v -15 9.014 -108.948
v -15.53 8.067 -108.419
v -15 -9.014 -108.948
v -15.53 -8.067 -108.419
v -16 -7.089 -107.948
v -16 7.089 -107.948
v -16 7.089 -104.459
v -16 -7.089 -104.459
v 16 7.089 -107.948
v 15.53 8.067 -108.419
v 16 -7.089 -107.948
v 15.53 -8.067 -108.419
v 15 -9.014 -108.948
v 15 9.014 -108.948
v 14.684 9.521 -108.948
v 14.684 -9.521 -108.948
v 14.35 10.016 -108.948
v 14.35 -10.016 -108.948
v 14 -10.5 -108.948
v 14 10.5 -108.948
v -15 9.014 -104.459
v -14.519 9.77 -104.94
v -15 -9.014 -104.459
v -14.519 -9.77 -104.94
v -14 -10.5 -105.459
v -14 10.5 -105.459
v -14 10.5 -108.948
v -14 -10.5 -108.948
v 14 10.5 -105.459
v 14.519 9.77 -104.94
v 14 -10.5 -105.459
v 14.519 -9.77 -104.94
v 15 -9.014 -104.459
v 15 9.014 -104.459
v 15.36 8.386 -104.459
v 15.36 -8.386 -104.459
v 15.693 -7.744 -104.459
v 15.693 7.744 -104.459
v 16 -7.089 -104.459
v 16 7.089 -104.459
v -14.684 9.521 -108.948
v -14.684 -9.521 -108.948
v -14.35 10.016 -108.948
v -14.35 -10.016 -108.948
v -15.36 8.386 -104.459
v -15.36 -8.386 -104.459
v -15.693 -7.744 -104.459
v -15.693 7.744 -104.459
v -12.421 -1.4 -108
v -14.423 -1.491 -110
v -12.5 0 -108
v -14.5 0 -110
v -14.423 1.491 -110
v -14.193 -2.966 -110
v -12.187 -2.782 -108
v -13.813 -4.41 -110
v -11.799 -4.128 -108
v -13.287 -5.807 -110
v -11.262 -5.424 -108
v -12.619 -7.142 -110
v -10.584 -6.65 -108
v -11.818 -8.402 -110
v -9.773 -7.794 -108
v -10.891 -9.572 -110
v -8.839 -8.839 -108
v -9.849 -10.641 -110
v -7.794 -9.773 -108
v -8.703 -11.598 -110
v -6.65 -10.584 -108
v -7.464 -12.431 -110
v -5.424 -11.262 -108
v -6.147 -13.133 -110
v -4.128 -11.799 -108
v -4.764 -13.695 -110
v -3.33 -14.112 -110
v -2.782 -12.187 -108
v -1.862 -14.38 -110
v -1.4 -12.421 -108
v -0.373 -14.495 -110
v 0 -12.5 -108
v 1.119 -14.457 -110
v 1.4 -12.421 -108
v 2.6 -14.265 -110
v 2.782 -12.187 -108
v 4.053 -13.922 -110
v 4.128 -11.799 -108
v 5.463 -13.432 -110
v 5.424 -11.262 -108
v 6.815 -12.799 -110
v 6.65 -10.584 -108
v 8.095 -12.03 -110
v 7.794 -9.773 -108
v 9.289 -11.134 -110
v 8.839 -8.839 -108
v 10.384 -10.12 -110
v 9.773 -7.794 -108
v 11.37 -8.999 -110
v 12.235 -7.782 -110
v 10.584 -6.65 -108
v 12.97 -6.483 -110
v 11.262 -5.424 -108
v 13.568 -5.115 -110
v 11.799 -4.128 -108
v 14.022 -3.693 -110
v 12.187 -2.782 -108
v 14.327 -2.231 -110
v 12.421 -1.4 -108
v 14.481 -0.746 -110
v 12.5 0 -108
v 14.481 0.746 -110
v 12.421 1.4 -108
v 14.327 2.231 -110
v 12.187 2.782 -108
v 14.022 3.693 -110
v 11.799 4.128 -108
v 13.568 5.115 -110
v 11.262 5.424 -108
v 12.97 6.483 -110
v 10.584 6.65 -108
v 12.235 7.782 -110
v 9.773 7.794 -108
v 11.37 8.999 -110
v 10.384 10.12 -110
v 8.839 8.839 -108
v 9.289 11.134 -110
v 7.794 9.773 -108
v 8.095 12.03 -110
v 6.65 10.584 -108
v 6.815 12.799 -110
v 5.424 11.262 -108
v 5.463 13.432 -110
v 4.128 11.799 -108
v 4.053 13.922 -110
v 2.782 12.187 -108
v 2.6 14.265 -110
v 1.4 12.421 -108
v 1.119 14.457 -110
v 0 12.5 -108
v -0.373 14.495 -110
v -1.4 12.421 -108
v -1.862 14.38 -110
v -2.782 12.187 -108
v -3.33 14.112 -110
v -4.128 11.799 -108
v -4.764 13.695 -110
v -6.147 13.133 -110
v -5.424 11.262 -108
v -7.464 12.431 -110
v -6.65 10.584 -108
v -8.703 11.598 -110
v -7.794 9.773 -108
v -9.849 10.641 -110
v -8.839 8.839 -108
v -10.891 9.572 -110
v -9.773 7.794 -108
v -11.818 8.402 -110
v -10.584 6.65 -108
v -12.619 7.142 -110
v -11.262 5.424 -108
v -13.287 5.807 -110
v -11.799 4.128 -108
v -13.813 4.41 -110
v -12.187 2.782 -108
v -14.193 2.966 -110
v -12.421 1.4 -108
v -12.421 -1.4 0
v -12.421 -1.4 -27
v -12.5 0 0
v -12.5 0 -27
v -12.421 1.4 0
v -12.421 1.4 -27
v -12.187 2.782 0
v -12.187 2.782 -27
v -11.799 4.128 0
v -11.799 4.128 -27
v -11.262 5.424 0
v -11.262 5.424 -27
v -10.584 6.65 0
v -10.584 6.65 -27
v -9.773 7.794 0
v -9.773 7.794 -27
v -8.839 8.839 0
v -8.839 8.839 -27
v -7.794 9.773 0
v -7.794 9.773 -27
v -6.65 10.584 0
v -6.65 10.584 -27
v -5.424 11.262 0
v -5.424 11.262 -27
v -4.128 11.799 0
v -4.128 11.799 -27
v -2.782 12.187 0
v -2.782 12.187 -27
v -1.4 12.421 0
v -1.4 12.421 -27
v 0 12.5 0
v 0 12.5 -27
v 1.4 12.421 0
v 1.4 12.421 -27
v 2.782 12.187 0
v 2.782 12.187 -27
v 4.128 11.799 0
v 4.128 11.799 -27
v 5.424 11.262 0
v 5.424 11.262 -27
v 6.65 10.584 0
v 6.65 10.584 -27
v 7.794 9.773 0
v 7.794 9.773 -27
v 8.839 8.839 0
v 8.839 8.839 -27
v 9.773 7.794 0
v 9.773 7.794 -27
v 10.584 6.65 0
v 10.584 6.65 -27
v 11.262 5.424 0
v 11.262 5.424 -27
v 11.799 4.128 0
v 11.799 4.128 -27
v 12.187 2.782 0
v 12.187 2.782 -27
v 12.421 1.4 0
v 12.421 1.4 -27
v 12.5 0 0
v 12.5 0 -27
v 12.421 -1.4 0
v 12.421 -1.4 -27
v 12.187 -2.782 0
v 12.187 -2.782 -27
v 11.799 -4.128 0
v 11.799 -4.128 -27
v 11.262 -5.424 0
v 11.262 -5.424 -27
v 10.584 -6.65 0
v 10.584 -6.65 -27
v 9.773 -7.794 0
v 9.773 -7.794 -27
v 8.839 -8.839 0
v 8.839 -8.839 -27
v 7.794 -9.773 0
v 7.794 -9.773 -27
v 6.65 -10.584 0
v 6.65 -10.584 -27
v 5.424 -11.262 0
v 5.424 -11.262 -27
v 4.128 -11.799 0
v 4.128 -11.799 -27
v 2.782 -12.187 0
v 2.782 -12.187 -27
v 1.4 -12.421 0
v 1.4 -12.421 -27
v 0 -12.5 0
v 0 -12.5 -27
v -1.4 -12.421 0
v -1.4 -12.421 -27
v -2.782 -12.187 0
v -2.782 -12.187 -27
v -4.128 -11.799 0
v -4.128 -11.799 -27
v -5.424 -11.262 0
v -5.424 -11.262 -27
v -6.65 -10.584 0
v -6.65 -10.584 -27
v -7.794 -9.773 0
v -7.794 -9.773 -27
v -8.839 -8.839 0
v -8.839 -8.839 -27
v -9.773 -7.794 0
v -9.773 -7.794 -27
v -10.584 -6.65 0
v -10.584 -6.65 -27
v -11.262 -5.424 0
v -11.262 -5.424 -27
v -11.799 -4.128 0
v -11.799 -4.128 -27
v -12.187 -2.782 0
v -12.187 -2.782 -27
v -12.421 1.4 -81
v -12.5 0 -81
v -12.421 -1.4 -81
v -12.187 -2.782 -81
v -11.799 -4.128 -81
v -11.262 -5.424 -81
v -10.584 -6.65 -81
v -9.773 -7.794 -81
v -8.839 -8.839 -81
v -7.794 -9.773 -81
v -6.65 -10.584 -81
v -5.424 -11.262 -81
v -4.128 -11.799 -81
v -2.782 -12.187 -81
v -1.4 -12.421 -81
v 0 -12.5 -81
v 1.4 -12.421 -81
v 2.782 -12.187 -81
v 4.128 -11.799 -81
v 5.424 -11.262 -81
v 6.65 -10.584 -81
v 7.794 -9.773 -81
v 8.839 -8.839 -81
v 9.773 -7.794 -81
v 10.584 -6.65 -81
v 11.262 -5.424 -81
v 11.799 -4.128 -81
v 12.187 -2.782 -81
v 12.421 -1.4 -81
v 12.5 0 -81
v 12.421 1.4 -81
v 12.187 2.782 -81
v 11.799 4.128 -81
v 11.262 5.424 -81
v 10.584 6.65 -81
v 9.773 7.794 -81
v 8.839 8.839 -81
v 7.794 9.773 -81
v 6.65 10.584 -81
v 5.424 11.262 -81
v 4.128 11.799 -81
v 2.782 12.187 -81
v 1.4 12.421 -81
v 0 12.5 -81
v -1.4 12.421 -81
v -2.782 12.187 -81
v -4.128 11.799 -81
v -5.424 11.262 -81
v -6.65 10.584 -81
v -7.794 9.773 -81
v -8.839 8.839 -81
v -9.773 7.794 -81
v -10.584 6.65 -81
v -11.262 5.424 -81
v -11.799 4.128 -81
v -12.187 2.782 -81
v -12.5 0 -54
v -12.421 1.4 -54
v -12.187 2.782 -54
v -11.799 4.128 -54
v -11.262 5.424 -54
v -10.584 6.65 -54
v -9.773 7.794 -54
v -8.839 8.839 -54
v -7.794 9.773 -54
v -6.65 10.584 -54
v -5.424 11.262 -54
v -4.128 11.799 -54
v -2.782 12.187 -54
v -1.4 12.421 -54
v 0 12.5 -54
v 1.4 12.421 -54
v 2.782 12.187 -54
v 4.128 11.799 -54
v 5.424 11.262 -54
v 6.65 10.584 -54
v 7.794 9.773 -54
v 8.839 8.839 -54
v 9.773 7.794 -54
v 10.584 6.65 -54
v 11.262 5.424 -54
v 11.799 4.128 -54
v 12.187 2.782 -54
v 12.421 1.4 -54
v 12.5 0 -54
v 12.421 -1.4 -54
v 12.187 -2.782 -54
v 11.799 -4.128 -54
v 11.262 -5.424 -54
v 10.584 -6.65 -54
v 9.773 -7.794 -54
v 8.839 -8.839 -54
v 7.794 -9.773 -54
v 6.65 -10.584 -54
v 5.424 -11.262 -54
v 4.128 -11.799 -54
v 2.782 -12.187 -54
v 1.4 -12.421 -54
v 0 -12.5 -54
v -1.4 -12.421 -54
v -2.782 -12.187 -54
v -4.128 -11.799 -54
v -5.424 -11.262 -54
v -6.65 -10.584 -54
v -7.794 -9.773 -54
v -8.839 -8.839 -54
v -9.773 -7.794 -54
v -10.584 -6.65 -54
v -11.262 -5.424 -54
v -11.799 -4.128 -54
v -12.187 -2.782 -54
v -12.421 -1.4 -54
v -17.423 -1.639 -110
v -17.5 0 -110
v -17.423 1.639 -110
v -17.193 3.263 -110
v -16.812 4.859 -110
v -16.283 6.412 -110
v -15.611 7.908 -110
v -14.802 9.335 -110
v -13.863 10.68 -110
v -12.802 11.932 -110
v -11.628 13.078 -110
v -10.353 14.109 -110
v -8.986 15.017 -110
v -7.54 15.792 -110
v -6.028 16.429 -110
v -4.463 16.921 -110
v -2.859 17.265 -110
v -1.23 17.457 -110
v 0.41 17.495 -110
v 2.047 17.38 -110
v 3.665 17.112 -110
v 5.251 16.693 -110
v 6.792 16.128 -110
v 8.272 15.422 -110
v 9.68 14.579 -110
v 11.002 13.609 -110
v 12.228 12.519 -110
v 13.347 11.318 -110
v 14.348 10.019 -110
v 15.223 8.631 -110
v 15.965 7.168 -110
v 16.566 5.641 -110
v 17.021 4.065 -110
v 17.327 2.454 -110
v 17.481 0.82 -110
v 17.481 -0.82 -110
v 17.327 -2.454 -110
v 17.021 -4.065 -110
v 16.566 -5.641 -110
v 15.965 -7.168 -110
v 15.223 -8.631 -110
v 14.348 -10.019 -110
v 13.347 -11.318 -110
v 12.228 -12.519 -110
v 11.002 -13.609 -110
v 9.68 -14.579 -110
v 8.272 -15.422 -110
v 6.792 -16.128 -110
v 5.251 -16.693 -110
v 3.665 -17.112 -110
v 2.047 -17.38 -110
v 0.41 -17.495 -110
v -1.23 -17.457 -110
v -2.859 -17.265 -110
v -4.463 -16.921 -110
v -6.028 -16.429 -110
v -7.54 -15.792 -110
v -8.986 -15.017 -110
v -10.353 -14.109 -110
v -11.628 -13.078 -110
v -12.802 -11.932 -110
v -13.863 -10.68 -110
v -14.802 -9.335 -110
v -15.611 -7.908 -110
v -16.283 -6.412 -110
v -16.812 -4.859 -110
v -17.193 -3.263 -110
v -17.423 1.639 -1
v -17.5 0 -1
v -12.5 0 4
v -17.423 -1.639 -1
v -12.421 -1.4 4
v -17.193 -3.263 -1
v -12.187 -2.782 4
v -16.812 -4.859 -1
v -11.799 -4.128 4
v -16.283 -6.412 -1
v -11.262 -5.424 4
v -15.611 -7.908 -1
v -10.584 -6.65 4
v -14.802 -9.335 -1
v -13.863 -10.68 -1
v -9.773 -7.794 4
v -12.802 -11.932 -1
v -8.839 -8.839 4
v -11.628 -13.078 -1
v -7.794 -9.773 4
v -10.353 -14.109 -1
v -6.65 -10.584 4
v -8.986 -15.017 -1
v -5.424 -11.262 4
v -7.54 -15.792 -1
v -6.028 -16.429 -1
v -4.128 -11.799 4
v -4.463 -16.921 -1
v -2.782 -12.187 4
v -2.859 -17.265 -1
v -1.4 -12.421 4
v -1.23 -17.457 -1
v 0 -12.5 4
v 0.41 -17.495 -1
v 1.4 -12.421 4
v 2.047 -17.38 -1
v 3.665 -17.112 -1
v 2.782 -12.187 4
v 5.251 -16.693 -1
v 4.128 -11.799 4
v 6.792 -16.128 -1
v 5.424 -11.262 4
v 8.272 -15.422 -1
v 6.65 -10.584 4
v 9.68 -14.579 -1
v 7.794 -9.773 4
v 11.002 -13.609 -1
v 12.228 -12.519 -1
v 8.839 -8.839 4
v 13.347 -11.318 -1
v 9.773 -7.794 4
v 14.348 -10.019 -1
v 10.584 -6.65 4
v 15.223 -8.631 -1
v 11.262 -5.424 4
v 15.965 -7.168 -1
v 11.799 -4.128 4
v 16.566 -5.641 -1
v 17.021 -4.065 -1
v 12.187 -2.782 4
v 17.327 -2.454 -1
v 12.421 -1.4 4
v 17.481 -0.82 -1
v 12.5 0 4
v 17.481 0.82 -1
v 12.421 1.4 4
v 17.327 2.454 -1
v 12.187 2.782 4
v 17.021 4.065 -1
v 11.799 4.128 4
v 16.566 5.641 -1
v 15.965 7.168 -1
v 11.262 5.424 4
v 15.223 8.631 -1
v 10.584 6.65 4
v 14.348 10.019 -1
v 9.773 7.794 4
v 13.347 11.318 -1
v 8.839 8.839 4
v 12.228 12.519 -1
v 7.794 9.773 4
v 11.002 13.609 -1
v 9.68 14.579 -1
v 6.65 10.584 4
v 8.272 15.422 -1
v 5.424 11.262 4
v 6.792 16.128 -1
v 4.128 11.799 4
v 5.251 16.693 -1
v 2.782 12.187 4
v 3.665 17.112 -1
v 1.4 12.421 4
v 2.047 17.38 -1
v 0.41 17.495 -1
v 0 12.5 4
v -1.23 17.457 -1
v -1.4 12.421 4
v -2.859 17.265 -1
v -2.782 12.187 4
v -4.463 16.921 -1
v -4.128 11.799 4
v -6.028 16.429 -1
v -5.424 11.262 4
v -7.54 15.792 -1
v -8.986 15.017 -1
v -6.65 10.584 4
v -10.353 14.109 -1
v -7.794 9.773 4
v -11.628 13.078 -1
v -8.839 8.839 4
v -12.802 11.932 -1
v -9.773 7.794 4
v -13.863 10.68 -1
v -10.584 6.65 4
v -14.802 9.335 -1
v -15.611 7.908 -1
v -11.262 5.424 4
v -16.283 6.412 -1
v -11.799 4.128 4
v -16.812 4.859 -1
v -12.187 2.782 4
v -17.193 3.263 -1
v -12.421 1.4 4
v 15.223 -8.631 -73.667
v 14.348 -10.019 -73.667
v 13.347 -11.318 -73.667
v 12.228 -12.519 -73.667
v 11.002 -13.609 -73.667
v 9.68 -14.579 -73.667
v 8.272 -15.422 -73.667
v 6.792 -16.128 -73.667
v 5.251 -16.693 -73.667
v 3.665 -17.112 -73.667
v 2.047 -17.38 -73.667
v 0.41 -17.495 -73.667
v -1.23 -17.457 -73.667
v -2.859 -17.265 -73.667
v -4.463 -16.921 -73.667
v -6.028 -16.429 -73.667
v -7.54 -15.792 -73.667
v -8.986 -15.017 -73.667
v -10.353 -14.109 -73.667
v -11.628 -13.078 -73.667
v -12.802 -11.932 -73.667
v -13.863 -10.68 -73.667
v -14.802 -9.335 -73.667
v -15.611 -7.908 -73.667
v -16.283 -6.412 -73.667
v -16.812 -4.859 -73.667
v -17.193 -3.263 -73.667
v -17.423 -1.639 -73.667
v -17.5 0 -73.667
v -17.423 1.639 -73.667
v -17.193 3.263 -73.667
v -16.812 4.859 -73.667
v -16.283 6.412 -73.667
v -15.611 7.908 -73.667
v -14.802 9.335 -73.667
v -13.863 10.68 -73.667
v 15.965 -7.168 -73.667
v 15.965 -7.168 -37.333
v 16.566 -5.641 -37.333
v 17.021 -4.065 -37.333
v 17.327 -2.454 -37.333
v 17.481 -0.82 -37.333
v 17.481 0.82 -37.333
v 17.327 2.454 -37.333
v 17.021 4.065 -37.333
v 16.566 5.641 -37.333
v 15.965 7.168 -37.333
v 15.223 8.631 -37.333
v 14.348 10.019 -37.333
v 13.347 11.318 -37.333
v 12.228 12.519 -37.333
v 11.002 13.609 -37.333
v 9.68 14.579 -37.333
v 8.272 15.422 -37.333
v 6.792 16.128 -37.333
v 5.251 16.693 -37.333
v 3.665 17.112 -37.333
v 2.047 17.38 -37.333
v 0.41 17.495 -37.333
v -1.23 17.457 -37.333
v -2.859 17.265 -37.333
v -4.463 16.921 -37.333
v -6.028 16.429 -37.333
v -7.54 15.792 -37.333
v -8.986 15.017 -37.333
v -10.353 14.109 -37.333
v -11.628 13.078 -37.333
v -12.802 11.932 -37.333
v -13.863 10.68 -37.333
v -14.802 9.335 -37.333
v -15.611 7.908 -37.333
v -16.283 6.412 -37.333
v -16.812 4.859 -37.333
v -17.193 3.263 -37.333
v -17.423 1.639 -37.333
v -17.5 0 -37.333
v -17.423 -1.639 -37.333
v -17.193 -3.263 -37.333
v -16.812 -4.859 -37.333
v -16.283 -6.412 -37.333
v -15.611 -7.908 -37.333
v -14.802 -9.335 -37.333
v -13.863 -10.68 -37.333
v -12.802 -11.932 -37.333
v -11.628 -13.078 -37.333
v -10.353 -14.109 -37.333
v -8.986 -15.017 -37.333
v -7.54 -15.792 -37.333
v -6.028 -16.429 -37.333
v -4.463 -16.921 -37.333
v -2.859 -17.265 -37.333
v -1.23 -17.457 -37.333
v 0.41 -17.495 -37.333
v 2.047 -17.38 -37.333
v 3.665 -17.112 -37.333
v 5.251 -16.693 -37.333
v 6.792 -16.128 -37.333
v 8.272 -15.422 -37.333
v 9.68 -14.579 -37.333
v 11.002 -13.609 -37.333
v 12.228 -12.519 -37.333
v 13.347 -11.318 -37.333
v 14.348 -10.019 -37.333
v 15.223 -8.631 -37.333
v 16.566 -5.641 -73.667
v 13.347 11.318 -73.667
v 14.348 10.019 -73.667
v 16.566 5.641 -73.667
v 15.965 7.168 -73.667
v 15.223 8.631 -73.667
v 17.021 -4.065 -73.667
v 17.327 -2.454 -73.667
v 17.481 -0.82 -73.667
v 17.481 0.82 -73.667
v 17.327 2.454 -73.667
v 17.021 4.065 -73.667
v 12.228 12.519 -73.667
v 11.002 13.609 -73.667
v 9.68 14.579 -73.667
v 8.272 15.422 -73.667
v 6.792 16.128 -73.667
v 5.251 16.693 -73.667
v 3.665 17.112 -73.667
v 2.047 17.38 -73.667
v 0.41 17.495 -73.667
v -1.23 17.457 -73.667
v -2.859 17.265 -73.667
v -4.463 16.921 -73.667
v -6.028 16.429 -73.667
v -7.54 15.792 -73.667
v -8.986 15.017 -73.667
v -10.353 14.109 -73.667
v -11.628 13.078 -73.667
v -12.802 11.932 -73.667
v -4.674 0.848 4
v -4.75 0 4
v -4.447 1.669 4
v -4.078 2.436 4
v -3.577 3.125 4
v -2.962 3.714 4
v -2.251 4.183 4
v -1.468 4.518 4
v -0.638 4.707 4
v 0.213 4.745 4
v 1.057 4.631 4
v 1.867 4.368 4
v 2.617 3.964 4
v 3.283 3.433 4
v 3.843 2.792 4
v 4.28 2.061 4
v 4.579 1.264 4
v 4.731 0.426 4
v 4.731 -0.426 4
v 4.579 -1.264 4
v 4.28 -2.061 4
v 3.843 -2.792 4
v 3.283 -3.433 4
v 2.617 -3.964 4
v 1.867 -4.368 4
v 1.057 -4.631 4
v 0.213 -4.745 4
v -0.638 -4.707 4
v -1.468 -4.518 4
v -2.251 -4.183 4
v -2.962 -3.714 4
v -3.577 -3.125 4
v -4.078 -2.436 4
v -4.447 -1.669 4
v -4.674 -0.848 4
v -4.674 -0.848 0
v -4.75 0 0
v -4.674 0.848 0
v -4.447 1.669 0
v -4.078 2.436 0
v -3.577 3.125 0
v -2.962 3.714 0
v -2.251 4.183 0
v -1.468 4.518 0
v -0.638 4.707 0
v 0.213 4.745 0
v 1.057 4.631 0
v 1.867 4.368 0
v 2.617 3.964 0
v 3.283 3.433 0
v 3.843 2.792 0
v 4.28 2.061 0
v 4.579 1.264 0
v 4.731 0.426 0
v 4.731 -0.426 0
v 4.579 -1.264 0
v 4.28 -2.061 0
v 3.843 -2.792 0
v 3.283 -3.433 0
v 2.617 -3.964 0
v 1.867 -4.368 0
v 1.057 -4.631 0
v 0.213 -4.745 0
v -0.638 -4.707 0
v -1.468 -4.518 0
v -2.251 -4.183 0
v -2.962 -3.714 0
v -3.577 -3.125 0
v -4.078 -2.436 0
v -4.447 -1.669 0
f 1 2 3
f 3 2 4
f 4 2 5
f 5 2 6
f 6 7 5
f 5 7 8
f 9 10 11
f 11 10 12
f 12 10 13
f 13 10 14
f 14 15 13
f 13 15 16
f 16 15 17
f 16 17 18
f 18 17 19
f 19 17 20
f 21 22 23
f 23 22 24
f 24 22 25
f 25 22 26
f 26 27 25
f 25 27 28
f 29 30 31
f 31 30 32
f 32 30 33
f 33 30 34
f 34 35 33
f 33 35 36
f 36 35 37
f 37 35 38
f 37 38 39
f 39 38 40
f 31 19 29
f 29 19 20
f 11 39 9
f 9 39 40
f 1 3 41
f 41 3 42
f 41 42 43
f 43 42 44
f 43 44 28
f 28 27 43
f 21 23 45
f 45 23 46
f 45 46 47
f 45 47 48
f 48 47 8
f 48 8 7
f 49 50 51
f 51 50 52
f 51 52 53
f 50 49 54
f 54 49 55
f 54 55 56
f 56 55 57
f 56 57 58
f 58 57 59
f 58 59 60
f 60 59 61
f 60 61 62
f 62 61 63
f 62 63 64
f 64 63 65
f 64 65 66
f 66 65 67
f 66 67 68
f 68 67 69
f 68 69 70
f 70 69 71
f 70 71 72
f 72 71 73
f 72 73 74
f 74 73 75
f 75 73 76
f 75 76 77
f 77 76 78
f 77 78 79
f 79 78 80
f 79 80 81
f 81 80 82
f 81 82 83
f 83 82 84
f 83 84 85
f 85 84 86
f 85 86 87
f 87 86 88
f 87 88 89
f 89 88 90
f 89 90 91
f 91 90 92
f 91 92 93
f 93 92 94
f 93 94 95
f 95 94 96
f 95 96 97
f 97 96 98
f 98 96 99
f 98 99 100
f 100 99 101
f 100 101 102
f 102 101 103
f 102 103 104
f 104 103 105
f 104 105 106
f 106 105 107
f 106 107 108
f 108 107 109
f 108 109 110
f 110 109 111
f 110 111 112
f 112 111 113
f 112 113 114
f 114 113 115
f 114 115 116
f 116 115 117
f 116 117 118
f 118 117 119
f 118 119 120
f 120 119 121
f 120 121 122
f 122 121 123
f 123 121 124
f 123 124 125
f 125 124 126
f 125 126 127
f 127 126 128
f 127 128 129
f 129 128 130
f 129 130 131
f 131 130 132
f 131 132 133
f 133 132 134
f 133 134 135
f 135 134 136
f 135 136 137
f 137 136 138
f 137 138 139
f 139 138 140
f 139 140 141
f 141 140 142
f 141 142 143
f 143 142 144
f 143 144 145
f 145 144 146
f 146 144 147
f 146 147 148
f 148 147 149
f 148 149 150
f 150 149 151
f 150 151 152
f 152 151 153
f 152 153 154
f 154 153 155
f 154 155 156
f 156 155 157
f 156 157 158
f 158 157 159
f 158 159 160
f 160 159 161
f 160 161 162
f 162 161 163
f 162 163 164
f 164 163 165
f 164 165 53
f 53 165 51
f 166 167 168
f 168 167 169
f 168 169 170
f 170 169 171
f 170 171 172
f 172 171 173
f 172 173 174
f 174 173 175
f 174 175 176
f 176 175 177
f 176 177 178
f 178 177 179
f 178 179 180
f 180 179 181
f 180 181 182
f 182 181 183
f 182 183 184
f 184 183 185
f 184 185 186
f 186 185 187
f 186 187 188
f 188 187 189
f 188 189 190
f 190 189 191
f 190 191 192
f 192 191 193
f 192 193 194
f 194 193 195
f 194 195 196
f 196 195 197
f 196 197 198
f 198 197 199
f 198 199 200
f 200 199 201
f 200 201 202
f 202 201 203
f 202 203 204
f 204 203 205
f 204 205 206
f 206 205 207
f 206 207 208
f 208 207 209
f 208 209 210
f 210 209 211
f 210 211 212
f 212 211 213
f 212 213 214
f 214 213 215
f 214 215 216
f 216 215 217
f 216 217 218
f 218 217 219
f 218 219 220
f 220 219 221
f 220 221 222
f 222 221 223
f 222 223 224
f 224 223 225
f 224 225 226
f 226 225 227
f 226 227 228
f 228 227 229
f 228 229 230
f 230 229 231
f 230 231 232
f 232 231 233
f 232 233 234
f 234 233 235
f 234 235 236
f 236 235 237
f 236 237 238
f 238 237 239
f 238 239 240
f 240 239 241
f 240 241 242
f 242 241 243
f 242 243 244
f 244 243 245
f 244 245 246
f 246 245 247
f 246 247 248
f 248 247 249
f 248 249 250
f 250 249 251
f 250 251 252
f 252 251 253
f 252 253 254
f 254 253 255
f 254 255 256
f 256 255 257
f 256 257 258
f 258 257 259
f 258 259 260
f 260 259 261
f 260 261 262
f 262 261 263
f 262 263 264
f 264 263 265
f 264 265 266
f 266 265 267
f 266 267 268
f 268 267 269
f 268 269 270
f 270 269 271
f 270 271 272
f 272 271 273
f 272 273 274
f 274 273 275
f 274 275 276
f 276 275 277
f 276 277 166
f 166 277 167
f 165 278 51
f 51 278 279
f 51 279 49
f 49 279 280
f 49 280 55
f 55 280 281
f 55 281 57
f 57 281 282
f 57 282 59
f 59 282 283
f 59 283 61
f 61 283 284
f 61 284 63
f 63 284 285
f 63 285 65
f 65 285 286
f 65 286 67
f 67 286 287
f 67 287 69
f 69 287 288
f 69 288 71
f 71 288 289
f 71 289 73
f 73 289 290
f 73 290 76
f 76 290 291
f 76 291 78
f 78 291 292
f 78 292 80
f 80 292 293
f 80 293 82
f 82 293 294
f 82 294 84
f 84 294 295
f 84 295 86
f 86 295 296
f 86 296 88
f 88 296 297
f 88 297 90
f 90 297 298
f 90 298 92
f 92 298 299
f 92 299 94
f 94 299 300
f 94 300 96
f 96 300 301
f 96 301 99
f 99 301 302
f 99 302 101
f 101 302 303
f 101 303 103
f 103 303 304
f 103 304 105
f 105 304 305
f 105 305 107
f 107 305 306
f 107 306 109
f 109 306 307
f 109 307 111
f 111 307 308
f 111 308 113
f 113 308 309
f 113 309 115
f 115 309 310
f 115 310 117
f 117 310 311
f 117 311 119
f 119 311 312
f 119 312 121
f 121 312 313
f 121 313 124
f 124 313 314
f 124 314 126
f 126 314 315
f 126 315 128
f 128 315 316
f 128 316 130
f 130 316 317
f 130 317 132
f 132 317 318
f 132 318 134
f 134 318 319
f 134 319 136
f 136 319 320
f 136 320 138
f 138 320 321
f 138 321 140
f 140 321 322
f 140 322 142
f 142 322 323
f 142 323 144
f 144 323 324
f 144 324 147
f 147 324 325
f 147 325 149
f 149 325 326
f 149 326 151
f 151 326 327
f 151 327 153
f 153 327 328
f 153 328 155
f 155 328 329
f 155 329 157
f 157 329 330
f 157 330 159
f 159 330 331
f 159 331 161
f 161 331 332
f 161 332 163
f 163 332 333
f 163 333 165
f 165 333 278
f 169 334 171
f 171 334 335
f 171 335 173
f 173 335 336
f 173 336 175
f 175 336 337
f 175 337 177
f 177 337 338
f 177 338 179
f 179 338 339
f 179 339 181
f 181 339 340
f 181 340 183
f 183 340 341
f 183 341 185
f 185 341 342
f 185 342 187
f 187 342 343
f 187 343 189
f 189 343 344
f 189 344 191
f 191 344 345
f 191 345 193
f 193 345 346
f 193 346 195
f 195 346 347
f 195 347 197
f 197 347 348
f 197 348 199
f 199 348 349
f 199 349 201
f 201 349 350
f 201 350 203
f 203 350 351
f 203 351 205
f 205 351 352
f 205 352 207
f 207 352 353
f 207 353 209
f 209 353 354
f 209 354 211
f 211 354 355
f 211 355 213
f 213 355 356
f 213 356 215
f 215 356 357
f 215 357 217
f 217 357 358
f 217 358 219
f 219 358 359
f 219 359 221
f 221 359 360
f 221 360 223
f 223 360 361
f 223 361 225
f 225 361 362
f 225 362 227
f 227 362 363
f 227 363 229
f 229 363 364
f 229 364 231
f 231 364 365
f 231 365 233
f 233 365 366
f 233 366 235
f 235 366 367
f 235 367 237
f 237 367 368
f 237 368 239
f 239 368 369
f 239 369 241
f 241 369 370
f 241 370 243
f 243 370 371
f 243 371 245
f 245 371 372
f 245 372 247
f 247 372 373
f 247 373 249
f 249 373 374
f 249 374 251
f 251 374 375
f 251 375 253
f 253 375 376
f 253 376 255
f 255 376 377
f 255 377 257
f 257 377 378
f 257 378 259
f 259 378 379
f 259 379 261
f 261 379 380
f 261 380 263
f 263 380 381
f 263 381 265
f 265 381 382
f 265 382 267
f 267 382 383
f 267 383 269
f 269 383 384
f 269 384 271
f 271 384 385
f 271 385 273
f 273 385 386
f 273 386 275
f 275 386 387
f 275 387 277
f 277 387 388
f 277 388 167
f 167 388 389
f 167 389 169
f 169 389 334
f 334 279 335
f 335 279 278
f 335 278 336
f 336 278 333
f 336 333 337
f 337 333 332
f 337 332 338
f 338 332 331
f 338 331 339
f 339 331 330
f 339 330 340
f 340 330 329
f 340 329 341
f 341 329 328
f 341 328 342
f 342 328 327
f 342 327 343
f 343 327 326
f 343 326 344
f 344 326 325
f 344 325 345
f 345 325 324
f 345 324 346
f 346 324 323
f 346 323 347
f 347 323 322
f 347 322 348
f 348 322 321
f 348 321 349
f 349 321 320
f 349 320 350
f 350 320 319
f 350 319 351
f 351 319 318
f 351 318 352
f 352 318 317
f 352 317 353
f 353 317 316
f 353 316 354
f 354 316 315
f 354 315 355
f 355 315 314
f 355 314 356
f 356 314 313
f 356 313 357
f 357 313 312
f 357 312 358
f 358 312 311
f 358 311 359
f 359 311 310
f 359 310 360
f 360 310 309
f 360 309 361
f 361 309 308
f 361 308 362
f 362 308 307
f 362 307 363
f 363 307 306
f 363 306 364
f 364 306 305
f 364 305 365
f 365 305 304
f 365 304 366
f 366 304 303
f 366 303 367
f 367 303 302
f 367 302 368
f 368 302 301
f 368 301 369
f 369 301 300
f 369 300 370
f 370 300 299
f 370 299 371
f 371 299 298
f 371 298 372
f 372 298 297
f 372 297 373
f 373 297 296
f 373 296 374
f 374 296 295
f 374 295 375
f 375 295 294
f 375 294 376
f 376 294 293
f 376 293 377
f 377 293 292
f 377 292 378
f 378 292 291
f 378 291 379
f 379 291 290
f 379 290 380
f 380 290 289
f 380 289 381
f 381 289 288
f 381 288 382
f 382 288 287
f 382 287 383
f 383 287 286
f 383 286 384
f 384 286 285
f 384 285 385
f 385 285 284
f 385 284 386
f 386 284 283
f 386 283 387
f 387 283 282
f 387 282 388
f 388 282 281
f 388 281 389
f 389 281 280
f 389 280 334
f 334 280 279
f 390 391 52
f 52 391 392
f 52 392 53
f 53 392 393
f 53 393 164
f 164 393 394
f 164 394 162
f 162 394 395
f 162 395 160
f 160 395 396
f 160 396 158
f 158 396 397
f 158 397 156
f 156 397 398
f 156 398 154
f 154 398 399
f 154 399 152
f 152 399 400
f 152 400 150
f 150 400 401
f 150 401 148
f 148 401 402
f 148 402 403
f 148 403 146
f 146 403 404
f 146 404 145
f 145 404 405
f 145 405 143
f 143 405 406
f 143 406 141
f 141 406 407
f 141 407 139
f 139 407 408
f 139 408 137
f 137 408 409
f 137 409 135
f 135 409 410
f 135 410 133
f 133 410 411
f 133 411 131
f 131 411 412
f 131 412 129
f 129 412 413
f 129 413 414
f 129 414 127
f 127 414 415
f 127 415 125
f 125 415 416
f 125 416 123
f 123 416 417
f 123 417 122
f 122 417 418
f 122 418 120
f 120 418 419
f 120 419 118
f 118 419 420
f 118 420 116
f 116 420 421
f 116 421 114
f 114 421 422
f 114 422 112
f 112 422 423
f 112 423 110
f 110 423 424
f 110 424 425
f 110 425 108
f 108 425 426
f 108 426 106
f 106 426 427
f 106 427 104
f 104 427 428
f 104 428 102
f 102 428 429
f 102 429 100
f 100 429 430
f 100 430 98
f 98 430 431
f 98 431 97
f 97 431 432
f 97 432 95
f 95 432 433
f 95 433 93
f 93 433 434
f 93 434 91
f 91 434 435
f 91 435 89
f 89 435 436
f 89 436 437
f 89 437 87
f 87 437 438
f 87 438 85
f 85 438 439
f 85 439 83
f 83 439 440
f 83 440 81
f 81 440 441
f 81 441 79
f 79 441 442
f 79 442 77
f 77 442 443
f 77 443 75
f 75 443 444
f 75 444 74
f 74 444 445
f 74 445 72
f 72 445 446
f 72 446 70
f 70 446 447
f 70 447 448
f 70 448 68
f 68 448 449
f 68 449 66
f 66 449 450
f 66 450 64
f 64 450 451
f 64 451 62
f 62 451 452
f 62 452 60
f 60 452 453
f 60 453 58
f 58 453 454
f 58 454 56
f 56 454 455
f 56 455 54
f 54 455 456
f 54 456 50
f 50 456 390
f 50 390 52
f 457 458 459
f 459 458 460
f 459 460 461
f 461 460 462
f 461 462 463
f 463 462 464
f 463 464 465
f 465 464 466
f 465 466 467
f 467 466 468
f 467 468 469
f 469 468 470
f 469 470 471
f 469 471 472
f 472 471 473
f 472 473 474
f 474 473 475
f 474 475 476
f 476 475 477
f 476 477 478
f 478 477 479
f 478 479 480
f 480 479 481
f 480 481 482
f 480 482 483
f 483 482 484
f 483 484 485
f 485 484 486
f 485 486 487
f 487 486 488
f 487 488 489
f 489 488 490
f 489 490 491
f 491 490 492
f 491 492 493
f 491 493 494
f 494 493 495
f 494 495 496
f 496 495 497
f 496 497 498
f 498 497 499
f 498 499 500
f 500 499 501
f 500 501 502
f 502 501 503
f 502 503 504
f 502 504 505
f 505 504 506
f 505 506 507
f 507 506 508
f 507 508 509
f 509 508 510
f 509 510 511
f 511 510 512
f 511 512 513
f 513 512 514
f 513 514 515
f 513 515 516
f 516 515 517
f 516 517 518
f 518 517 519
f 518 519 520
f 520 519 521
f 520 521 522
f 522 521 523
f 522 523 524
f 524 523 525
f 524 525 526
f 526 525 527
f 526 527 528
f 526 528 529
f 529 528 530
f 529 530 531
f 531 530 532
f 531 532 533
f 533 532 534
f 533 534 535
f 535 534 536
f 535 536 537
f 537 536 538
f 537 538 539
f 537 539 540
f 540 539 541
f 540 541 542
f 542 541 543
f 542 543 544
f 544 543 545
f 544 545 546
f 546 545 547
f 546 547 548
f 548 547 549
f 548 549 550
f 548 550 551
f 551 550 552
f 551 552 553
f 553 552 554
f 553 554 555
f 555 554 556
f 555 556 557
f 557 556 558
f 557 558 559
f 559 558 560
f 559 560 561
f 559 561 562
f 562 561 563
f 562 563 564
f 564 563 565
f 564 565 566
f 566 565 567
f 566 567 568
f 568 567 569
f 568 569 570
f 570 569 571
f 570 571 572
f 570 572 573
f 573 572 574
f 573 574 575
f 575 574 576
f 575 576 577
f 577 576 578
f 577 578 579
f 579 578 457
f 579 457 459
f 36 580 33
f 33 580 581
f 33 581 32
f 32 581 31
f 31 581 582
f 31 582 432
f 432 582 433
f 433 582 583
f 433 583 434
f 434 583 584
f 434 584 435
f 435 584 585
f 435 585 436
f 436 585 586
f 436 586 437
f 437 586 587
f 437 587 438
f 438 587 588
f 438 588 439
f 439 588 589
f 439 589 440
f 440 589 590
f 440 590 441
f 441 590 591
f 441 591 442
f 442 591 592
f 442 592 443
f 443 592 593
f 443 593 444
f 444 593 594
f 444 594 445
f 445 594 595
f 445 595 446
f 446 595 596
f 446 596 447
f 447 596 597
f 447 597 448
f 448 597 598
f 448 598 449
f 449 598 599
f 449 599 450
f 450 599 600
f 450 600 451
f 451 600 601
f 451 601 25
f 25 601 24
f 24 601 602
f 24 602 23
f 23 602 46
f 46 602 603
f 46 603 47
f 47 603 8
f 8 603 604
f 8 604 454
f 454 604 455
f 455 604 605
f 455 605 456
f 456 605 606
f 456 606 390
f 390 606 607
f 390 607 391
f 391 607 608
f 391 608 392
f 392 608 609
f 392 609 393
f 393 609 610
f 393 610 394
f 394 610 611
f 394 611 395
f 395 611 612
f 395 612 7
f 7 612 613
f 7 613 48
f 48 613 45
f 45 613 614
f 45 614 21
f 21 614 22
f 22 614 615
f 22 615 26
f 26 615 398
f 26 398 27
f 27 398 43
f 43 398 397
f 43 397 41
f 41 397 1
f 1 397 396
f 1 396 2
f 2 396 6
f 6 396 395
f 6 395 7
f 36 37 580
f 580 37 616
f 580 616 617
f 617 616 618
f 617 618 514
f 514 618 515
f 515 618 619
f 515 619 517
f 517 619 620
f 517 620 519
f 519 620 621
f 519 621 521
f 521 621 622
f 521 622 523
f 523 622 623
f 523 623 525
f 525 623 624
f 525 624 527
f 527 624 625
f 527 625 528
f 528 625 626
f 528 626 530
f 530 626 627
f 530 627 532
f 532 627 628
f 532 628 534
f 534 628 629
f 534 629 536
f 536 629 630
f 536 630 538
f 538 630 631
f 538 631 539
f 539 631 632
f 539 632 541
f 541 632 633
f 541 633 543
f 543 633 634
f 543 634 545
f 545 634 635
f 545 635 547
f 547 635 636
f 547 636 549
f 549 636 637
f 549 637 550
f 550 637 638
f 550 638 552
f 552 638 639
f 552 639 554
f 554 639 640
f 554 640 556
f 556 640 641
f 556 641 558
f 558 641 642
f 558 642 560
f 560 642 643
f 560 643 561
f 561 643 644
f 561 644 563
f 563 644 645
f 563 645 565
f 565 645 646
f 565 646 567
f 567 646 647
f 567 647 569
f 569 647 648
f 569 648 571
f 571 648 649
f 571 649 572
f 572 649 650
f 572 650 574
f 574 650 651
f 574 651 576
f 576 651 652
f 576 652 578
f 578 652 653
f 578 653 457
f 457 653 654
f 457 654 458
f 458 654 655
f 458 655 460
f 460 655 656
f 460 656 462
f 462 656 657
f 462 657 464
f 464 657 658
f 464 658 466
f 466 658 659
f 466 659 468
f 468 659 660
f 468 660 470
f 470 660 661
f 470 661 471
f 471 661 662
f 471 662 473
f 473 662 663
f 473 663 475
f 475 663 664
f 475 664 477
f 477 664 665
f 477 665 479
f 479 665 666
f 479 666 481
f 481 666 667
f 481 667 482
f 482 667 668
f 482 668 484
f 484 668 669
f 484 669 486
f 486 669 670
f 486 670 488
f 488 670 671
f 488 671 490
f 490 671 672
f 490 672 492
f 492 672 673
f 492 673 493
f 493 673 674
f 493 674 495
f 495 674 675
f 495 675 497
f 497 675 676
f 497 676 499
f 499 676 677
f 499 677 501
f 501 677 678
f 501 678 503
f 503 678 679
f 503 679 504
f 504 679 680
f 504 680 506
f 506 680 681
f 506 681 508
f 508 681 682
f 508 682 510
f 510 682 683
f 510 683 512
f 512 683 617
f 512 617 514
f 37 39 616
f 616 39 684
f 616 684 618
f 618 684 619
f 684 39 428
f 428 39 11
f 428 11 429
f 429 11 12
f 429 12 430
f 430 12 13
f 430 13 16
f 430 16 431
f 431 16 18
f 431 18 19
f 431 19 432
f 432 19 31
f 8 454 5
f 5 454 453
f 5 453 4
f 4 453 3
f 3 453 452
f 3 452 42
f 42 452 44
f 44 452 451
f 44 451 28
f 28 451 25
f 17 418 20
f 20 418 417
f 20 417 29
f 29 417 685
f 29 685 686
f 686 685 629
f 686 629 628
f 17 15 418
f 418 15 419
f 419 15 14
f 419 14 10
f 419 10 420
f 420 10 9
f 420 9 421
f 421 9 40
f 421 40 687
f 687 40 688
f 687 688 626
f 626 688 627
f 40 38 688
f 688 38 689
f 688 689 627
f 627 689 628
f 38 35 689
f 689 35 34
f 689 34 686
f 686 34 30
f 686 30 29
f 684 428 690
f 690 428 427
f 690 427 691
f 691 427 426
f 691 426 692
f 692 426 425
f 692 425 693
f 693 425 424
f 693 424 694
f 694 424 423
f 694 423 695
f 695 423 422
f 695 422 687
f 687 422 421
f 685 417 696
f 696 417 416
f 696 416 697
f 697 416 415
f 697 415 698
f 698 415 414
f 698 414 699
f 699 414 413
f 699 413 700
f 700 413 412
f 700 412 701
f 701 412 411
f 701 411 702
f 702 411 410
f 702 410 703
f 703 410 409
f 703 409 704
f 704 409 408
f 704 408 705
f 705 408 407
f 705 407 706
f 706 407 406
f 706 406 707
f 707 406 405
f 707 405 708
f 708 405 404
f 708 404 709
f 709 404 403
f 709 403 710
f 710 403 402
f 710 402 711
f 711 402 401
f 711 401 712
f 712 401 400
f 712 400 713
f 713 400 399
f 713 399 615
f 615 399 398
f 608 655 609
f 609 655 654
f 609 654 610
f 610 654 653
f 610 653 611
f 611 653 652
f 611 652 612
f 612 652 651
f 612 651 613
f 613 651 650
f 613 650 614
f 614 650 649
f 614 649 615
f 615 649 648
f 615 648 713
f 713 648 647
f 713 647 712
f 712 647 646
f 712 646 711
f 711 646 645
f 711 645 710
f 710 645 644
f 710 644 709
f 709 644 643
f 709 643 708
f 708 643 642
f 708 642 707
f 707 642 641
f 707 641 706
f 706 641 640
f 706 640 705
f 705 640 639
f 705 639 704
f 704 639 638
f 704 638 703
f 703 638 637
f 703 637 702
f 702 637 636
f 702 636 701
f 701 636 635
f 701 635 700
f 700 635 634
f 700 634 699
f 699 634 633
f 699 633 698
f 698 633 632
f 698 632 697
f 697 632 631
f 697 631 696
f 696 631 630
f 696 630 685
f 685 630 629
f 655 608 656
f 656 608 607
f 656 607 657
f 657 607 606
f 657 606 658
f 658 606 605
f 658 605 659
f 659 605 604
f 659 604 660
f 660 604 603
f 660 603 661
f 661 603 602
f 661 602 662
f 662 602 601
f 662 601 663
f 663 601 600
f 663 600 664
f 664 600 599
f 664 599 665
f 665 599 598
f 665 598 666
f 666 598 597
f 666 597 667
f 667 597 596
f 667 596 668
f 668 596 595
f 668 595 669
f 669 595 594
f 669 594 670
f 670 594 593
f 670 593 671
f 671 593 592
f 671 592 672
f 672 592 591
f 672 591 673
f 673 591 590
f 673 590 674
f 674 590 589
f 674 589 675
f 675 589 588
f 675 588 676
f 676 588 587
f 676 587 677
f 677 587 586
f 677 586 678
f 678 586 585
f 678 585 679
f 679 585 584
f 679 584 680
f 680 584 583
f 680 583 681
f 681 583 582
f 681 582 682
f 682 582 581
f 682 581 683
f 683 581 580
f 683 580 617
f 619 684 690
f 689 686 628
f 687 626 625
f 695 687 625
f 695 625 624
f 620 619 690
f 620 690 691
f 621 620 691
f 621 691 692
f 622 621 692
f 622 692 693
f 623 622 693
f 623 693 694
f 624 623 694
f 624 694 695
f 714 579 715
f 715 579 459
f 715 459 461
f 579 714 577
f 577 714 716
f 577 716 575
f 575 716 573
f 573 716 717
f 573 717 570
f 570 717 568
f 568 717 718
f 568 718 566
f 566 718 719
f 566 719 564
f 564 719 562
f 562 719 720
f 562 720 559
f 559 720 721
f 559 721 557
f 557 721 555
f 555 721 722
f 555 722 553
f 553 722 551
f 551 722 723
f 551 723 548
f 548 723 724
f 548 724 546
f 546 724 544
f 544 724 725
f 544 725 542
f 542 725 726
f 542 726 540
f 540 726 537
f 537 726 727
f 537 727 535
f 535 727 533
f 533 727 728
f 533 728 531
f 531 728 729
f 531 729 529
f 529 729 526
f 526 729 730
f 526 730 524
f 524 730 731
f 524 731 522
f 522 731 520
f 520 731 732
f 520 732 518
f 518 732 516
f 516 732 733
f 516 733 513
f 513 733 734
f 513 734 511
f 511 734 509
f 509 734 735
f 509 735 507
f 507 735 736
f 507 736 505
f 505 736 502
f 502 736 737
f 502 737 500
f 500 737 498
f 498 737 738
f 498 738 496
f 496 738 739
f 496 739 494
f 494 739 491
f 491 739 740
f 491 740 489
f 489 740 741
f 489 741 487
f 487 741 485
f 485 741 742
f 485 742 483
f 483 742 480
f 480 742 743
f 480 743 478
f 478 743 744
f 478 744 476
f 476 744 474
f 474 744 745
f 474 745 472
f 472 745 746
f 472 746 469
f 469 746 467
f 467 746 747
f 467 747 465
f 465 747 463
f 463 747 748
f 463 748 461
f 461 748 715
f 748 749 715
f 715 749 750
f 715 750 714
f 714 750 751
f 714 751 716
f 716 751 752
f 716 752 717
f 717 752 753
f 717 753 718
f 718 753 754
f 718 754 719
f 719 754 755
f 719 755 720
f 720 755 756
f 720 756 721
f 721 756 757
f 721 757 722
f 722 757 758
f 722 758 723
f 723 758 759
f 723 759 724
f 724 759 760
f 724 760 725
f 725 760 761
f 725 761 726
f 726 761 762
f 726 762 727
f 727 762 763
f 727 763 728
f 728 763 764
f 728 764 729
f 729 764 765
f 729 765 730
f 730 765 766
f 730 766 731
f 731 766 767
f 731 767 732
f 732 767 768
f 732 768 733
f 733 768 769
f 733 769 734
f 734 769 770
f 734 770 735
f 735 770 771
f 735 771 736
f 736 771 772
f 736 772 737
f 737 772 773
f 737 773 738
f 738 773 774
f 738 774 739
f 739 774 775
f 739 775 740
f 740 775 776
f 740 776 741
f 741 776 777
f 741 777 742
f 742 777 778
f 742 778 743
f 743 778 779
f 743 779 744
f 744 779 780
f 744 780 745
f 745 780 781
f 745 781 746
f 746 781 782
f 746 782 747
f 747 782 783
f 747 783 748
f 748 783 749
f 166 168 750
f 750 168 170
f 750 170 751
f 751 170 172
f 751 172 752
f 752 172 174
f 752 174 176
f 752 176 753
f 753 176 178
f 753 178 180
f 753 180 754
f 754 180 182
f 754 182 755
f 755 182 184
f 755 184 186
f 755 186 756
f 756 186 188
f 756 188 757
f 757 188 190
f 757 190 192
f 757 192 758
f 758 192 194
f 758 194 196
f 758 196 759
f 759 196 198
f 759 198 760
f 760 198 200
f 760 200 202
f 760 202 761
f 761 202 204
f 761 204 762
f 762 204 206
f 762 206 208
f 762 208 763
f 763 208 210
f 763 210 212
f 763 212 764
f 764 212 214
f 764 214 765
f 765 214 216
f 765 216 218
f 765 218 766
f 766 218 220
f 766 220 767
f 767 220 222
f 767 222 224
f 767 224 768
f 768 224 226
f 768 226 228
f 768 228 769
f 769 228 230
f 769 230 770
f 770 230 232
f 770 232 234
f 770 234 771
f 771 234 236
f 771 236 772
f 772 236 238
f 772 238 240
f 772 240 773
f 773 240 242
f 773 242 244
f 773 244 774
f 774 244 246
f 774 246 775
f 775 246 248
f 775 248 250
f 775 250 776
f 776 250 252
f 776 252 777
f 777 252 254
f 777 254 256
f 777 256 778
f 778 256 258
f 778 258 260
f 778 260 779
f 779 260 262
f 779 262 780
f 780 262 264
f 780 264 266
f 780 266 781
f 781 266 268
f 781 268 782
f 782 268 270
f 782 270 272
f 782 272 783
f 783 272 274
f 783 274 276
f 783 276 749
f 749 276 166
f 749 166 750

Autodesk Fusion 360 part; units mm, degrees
sketch "Sketch1" plane through (0, 0, 0) normal (0, 0, 1) x (1, 0, 0)
  circle A0 centre (0, 0) radius 17.5
  circle A1 centre (0, 0) radius 12.5
  circle A2 centre (0, 0) radius 4.75
  dimension "d1" = 25
  dimension "d2" = 35
  dimension "d3" = 9.5
extrude "Extrude1" add sketch "Sketch1" along normal blind 4 contours A0 | A1
extrude "Extrude2" add sketch "Sketch1" against normal blind 110 contours A0
chamfer "Chamfer1" distance 5 angle 45 1 edges at (-16.3157, -6.3283, 4)
chamfer "Chamfer2" distance 2 angle 45 1 edges at (-11.6541, -4.5202, -110)
sketch "Sketch2" plane through (0, 0, 0) normal (0, 1, 0) x (1, 0, 0)
  line L0 (0, 108.9485) -> (-12.5, 108.9485)
  line L1 (0, 108.9485) -> (12.5, 108.9485)
  line L2 (-16, 108.9485) -> (-14, 108.9485)
  line L3 (-14, 108.9485) -> (-14, 104.4591)
  line L4 (-14, 104.4591) -> (-16, 104.4591)
  line L5 (-16, 104.4591) -> (-16, 108.9485)
  line L6 (14, 104.4591) -> (16, 104.4591)
  line L7 (16, 104.4591) -> (16, 108.9485)
  line L8 (16, 108.9485) -> (14, 108.9485)
  line L9 (14, 108.9485) -> (14, 104.4591)
  line L10 (-15, 118.4485) -> (-15, 99.4485)
  line L11 (15, 119.4485) -> (15, 98.4485)
  line L12 (-12.5, 108.9485) -> (-17.5, 108.9485)
  line L13 (12.5, 108.9485) -> (17.5, 108.9485)
  dimension "d10" = 12.5
  dimension "d11" = 12.5
  dimension "d12" = 2
  dimension "d13" = 2
  dimension "d14" = 5
  dimension "d15" = 5
extrude "Extrude3" cut sketch "Sketch2" along normal blind 100
extrude "Extrude4" cut 2 faces at (14.6667, 0, -107.452) (-15.3333, 0, -107.452) along direction (0, -1, 0) blind 100
chamfer "Chamfer3" distance 1 angle 45 4 edges at (14, 0, -104.4591) (-14, 0, -104.4591) (16, 0, -108.9485) (-16, 0, -108.9485)
equation "d10 = ( 25 / 2 ) * 1 mm"
